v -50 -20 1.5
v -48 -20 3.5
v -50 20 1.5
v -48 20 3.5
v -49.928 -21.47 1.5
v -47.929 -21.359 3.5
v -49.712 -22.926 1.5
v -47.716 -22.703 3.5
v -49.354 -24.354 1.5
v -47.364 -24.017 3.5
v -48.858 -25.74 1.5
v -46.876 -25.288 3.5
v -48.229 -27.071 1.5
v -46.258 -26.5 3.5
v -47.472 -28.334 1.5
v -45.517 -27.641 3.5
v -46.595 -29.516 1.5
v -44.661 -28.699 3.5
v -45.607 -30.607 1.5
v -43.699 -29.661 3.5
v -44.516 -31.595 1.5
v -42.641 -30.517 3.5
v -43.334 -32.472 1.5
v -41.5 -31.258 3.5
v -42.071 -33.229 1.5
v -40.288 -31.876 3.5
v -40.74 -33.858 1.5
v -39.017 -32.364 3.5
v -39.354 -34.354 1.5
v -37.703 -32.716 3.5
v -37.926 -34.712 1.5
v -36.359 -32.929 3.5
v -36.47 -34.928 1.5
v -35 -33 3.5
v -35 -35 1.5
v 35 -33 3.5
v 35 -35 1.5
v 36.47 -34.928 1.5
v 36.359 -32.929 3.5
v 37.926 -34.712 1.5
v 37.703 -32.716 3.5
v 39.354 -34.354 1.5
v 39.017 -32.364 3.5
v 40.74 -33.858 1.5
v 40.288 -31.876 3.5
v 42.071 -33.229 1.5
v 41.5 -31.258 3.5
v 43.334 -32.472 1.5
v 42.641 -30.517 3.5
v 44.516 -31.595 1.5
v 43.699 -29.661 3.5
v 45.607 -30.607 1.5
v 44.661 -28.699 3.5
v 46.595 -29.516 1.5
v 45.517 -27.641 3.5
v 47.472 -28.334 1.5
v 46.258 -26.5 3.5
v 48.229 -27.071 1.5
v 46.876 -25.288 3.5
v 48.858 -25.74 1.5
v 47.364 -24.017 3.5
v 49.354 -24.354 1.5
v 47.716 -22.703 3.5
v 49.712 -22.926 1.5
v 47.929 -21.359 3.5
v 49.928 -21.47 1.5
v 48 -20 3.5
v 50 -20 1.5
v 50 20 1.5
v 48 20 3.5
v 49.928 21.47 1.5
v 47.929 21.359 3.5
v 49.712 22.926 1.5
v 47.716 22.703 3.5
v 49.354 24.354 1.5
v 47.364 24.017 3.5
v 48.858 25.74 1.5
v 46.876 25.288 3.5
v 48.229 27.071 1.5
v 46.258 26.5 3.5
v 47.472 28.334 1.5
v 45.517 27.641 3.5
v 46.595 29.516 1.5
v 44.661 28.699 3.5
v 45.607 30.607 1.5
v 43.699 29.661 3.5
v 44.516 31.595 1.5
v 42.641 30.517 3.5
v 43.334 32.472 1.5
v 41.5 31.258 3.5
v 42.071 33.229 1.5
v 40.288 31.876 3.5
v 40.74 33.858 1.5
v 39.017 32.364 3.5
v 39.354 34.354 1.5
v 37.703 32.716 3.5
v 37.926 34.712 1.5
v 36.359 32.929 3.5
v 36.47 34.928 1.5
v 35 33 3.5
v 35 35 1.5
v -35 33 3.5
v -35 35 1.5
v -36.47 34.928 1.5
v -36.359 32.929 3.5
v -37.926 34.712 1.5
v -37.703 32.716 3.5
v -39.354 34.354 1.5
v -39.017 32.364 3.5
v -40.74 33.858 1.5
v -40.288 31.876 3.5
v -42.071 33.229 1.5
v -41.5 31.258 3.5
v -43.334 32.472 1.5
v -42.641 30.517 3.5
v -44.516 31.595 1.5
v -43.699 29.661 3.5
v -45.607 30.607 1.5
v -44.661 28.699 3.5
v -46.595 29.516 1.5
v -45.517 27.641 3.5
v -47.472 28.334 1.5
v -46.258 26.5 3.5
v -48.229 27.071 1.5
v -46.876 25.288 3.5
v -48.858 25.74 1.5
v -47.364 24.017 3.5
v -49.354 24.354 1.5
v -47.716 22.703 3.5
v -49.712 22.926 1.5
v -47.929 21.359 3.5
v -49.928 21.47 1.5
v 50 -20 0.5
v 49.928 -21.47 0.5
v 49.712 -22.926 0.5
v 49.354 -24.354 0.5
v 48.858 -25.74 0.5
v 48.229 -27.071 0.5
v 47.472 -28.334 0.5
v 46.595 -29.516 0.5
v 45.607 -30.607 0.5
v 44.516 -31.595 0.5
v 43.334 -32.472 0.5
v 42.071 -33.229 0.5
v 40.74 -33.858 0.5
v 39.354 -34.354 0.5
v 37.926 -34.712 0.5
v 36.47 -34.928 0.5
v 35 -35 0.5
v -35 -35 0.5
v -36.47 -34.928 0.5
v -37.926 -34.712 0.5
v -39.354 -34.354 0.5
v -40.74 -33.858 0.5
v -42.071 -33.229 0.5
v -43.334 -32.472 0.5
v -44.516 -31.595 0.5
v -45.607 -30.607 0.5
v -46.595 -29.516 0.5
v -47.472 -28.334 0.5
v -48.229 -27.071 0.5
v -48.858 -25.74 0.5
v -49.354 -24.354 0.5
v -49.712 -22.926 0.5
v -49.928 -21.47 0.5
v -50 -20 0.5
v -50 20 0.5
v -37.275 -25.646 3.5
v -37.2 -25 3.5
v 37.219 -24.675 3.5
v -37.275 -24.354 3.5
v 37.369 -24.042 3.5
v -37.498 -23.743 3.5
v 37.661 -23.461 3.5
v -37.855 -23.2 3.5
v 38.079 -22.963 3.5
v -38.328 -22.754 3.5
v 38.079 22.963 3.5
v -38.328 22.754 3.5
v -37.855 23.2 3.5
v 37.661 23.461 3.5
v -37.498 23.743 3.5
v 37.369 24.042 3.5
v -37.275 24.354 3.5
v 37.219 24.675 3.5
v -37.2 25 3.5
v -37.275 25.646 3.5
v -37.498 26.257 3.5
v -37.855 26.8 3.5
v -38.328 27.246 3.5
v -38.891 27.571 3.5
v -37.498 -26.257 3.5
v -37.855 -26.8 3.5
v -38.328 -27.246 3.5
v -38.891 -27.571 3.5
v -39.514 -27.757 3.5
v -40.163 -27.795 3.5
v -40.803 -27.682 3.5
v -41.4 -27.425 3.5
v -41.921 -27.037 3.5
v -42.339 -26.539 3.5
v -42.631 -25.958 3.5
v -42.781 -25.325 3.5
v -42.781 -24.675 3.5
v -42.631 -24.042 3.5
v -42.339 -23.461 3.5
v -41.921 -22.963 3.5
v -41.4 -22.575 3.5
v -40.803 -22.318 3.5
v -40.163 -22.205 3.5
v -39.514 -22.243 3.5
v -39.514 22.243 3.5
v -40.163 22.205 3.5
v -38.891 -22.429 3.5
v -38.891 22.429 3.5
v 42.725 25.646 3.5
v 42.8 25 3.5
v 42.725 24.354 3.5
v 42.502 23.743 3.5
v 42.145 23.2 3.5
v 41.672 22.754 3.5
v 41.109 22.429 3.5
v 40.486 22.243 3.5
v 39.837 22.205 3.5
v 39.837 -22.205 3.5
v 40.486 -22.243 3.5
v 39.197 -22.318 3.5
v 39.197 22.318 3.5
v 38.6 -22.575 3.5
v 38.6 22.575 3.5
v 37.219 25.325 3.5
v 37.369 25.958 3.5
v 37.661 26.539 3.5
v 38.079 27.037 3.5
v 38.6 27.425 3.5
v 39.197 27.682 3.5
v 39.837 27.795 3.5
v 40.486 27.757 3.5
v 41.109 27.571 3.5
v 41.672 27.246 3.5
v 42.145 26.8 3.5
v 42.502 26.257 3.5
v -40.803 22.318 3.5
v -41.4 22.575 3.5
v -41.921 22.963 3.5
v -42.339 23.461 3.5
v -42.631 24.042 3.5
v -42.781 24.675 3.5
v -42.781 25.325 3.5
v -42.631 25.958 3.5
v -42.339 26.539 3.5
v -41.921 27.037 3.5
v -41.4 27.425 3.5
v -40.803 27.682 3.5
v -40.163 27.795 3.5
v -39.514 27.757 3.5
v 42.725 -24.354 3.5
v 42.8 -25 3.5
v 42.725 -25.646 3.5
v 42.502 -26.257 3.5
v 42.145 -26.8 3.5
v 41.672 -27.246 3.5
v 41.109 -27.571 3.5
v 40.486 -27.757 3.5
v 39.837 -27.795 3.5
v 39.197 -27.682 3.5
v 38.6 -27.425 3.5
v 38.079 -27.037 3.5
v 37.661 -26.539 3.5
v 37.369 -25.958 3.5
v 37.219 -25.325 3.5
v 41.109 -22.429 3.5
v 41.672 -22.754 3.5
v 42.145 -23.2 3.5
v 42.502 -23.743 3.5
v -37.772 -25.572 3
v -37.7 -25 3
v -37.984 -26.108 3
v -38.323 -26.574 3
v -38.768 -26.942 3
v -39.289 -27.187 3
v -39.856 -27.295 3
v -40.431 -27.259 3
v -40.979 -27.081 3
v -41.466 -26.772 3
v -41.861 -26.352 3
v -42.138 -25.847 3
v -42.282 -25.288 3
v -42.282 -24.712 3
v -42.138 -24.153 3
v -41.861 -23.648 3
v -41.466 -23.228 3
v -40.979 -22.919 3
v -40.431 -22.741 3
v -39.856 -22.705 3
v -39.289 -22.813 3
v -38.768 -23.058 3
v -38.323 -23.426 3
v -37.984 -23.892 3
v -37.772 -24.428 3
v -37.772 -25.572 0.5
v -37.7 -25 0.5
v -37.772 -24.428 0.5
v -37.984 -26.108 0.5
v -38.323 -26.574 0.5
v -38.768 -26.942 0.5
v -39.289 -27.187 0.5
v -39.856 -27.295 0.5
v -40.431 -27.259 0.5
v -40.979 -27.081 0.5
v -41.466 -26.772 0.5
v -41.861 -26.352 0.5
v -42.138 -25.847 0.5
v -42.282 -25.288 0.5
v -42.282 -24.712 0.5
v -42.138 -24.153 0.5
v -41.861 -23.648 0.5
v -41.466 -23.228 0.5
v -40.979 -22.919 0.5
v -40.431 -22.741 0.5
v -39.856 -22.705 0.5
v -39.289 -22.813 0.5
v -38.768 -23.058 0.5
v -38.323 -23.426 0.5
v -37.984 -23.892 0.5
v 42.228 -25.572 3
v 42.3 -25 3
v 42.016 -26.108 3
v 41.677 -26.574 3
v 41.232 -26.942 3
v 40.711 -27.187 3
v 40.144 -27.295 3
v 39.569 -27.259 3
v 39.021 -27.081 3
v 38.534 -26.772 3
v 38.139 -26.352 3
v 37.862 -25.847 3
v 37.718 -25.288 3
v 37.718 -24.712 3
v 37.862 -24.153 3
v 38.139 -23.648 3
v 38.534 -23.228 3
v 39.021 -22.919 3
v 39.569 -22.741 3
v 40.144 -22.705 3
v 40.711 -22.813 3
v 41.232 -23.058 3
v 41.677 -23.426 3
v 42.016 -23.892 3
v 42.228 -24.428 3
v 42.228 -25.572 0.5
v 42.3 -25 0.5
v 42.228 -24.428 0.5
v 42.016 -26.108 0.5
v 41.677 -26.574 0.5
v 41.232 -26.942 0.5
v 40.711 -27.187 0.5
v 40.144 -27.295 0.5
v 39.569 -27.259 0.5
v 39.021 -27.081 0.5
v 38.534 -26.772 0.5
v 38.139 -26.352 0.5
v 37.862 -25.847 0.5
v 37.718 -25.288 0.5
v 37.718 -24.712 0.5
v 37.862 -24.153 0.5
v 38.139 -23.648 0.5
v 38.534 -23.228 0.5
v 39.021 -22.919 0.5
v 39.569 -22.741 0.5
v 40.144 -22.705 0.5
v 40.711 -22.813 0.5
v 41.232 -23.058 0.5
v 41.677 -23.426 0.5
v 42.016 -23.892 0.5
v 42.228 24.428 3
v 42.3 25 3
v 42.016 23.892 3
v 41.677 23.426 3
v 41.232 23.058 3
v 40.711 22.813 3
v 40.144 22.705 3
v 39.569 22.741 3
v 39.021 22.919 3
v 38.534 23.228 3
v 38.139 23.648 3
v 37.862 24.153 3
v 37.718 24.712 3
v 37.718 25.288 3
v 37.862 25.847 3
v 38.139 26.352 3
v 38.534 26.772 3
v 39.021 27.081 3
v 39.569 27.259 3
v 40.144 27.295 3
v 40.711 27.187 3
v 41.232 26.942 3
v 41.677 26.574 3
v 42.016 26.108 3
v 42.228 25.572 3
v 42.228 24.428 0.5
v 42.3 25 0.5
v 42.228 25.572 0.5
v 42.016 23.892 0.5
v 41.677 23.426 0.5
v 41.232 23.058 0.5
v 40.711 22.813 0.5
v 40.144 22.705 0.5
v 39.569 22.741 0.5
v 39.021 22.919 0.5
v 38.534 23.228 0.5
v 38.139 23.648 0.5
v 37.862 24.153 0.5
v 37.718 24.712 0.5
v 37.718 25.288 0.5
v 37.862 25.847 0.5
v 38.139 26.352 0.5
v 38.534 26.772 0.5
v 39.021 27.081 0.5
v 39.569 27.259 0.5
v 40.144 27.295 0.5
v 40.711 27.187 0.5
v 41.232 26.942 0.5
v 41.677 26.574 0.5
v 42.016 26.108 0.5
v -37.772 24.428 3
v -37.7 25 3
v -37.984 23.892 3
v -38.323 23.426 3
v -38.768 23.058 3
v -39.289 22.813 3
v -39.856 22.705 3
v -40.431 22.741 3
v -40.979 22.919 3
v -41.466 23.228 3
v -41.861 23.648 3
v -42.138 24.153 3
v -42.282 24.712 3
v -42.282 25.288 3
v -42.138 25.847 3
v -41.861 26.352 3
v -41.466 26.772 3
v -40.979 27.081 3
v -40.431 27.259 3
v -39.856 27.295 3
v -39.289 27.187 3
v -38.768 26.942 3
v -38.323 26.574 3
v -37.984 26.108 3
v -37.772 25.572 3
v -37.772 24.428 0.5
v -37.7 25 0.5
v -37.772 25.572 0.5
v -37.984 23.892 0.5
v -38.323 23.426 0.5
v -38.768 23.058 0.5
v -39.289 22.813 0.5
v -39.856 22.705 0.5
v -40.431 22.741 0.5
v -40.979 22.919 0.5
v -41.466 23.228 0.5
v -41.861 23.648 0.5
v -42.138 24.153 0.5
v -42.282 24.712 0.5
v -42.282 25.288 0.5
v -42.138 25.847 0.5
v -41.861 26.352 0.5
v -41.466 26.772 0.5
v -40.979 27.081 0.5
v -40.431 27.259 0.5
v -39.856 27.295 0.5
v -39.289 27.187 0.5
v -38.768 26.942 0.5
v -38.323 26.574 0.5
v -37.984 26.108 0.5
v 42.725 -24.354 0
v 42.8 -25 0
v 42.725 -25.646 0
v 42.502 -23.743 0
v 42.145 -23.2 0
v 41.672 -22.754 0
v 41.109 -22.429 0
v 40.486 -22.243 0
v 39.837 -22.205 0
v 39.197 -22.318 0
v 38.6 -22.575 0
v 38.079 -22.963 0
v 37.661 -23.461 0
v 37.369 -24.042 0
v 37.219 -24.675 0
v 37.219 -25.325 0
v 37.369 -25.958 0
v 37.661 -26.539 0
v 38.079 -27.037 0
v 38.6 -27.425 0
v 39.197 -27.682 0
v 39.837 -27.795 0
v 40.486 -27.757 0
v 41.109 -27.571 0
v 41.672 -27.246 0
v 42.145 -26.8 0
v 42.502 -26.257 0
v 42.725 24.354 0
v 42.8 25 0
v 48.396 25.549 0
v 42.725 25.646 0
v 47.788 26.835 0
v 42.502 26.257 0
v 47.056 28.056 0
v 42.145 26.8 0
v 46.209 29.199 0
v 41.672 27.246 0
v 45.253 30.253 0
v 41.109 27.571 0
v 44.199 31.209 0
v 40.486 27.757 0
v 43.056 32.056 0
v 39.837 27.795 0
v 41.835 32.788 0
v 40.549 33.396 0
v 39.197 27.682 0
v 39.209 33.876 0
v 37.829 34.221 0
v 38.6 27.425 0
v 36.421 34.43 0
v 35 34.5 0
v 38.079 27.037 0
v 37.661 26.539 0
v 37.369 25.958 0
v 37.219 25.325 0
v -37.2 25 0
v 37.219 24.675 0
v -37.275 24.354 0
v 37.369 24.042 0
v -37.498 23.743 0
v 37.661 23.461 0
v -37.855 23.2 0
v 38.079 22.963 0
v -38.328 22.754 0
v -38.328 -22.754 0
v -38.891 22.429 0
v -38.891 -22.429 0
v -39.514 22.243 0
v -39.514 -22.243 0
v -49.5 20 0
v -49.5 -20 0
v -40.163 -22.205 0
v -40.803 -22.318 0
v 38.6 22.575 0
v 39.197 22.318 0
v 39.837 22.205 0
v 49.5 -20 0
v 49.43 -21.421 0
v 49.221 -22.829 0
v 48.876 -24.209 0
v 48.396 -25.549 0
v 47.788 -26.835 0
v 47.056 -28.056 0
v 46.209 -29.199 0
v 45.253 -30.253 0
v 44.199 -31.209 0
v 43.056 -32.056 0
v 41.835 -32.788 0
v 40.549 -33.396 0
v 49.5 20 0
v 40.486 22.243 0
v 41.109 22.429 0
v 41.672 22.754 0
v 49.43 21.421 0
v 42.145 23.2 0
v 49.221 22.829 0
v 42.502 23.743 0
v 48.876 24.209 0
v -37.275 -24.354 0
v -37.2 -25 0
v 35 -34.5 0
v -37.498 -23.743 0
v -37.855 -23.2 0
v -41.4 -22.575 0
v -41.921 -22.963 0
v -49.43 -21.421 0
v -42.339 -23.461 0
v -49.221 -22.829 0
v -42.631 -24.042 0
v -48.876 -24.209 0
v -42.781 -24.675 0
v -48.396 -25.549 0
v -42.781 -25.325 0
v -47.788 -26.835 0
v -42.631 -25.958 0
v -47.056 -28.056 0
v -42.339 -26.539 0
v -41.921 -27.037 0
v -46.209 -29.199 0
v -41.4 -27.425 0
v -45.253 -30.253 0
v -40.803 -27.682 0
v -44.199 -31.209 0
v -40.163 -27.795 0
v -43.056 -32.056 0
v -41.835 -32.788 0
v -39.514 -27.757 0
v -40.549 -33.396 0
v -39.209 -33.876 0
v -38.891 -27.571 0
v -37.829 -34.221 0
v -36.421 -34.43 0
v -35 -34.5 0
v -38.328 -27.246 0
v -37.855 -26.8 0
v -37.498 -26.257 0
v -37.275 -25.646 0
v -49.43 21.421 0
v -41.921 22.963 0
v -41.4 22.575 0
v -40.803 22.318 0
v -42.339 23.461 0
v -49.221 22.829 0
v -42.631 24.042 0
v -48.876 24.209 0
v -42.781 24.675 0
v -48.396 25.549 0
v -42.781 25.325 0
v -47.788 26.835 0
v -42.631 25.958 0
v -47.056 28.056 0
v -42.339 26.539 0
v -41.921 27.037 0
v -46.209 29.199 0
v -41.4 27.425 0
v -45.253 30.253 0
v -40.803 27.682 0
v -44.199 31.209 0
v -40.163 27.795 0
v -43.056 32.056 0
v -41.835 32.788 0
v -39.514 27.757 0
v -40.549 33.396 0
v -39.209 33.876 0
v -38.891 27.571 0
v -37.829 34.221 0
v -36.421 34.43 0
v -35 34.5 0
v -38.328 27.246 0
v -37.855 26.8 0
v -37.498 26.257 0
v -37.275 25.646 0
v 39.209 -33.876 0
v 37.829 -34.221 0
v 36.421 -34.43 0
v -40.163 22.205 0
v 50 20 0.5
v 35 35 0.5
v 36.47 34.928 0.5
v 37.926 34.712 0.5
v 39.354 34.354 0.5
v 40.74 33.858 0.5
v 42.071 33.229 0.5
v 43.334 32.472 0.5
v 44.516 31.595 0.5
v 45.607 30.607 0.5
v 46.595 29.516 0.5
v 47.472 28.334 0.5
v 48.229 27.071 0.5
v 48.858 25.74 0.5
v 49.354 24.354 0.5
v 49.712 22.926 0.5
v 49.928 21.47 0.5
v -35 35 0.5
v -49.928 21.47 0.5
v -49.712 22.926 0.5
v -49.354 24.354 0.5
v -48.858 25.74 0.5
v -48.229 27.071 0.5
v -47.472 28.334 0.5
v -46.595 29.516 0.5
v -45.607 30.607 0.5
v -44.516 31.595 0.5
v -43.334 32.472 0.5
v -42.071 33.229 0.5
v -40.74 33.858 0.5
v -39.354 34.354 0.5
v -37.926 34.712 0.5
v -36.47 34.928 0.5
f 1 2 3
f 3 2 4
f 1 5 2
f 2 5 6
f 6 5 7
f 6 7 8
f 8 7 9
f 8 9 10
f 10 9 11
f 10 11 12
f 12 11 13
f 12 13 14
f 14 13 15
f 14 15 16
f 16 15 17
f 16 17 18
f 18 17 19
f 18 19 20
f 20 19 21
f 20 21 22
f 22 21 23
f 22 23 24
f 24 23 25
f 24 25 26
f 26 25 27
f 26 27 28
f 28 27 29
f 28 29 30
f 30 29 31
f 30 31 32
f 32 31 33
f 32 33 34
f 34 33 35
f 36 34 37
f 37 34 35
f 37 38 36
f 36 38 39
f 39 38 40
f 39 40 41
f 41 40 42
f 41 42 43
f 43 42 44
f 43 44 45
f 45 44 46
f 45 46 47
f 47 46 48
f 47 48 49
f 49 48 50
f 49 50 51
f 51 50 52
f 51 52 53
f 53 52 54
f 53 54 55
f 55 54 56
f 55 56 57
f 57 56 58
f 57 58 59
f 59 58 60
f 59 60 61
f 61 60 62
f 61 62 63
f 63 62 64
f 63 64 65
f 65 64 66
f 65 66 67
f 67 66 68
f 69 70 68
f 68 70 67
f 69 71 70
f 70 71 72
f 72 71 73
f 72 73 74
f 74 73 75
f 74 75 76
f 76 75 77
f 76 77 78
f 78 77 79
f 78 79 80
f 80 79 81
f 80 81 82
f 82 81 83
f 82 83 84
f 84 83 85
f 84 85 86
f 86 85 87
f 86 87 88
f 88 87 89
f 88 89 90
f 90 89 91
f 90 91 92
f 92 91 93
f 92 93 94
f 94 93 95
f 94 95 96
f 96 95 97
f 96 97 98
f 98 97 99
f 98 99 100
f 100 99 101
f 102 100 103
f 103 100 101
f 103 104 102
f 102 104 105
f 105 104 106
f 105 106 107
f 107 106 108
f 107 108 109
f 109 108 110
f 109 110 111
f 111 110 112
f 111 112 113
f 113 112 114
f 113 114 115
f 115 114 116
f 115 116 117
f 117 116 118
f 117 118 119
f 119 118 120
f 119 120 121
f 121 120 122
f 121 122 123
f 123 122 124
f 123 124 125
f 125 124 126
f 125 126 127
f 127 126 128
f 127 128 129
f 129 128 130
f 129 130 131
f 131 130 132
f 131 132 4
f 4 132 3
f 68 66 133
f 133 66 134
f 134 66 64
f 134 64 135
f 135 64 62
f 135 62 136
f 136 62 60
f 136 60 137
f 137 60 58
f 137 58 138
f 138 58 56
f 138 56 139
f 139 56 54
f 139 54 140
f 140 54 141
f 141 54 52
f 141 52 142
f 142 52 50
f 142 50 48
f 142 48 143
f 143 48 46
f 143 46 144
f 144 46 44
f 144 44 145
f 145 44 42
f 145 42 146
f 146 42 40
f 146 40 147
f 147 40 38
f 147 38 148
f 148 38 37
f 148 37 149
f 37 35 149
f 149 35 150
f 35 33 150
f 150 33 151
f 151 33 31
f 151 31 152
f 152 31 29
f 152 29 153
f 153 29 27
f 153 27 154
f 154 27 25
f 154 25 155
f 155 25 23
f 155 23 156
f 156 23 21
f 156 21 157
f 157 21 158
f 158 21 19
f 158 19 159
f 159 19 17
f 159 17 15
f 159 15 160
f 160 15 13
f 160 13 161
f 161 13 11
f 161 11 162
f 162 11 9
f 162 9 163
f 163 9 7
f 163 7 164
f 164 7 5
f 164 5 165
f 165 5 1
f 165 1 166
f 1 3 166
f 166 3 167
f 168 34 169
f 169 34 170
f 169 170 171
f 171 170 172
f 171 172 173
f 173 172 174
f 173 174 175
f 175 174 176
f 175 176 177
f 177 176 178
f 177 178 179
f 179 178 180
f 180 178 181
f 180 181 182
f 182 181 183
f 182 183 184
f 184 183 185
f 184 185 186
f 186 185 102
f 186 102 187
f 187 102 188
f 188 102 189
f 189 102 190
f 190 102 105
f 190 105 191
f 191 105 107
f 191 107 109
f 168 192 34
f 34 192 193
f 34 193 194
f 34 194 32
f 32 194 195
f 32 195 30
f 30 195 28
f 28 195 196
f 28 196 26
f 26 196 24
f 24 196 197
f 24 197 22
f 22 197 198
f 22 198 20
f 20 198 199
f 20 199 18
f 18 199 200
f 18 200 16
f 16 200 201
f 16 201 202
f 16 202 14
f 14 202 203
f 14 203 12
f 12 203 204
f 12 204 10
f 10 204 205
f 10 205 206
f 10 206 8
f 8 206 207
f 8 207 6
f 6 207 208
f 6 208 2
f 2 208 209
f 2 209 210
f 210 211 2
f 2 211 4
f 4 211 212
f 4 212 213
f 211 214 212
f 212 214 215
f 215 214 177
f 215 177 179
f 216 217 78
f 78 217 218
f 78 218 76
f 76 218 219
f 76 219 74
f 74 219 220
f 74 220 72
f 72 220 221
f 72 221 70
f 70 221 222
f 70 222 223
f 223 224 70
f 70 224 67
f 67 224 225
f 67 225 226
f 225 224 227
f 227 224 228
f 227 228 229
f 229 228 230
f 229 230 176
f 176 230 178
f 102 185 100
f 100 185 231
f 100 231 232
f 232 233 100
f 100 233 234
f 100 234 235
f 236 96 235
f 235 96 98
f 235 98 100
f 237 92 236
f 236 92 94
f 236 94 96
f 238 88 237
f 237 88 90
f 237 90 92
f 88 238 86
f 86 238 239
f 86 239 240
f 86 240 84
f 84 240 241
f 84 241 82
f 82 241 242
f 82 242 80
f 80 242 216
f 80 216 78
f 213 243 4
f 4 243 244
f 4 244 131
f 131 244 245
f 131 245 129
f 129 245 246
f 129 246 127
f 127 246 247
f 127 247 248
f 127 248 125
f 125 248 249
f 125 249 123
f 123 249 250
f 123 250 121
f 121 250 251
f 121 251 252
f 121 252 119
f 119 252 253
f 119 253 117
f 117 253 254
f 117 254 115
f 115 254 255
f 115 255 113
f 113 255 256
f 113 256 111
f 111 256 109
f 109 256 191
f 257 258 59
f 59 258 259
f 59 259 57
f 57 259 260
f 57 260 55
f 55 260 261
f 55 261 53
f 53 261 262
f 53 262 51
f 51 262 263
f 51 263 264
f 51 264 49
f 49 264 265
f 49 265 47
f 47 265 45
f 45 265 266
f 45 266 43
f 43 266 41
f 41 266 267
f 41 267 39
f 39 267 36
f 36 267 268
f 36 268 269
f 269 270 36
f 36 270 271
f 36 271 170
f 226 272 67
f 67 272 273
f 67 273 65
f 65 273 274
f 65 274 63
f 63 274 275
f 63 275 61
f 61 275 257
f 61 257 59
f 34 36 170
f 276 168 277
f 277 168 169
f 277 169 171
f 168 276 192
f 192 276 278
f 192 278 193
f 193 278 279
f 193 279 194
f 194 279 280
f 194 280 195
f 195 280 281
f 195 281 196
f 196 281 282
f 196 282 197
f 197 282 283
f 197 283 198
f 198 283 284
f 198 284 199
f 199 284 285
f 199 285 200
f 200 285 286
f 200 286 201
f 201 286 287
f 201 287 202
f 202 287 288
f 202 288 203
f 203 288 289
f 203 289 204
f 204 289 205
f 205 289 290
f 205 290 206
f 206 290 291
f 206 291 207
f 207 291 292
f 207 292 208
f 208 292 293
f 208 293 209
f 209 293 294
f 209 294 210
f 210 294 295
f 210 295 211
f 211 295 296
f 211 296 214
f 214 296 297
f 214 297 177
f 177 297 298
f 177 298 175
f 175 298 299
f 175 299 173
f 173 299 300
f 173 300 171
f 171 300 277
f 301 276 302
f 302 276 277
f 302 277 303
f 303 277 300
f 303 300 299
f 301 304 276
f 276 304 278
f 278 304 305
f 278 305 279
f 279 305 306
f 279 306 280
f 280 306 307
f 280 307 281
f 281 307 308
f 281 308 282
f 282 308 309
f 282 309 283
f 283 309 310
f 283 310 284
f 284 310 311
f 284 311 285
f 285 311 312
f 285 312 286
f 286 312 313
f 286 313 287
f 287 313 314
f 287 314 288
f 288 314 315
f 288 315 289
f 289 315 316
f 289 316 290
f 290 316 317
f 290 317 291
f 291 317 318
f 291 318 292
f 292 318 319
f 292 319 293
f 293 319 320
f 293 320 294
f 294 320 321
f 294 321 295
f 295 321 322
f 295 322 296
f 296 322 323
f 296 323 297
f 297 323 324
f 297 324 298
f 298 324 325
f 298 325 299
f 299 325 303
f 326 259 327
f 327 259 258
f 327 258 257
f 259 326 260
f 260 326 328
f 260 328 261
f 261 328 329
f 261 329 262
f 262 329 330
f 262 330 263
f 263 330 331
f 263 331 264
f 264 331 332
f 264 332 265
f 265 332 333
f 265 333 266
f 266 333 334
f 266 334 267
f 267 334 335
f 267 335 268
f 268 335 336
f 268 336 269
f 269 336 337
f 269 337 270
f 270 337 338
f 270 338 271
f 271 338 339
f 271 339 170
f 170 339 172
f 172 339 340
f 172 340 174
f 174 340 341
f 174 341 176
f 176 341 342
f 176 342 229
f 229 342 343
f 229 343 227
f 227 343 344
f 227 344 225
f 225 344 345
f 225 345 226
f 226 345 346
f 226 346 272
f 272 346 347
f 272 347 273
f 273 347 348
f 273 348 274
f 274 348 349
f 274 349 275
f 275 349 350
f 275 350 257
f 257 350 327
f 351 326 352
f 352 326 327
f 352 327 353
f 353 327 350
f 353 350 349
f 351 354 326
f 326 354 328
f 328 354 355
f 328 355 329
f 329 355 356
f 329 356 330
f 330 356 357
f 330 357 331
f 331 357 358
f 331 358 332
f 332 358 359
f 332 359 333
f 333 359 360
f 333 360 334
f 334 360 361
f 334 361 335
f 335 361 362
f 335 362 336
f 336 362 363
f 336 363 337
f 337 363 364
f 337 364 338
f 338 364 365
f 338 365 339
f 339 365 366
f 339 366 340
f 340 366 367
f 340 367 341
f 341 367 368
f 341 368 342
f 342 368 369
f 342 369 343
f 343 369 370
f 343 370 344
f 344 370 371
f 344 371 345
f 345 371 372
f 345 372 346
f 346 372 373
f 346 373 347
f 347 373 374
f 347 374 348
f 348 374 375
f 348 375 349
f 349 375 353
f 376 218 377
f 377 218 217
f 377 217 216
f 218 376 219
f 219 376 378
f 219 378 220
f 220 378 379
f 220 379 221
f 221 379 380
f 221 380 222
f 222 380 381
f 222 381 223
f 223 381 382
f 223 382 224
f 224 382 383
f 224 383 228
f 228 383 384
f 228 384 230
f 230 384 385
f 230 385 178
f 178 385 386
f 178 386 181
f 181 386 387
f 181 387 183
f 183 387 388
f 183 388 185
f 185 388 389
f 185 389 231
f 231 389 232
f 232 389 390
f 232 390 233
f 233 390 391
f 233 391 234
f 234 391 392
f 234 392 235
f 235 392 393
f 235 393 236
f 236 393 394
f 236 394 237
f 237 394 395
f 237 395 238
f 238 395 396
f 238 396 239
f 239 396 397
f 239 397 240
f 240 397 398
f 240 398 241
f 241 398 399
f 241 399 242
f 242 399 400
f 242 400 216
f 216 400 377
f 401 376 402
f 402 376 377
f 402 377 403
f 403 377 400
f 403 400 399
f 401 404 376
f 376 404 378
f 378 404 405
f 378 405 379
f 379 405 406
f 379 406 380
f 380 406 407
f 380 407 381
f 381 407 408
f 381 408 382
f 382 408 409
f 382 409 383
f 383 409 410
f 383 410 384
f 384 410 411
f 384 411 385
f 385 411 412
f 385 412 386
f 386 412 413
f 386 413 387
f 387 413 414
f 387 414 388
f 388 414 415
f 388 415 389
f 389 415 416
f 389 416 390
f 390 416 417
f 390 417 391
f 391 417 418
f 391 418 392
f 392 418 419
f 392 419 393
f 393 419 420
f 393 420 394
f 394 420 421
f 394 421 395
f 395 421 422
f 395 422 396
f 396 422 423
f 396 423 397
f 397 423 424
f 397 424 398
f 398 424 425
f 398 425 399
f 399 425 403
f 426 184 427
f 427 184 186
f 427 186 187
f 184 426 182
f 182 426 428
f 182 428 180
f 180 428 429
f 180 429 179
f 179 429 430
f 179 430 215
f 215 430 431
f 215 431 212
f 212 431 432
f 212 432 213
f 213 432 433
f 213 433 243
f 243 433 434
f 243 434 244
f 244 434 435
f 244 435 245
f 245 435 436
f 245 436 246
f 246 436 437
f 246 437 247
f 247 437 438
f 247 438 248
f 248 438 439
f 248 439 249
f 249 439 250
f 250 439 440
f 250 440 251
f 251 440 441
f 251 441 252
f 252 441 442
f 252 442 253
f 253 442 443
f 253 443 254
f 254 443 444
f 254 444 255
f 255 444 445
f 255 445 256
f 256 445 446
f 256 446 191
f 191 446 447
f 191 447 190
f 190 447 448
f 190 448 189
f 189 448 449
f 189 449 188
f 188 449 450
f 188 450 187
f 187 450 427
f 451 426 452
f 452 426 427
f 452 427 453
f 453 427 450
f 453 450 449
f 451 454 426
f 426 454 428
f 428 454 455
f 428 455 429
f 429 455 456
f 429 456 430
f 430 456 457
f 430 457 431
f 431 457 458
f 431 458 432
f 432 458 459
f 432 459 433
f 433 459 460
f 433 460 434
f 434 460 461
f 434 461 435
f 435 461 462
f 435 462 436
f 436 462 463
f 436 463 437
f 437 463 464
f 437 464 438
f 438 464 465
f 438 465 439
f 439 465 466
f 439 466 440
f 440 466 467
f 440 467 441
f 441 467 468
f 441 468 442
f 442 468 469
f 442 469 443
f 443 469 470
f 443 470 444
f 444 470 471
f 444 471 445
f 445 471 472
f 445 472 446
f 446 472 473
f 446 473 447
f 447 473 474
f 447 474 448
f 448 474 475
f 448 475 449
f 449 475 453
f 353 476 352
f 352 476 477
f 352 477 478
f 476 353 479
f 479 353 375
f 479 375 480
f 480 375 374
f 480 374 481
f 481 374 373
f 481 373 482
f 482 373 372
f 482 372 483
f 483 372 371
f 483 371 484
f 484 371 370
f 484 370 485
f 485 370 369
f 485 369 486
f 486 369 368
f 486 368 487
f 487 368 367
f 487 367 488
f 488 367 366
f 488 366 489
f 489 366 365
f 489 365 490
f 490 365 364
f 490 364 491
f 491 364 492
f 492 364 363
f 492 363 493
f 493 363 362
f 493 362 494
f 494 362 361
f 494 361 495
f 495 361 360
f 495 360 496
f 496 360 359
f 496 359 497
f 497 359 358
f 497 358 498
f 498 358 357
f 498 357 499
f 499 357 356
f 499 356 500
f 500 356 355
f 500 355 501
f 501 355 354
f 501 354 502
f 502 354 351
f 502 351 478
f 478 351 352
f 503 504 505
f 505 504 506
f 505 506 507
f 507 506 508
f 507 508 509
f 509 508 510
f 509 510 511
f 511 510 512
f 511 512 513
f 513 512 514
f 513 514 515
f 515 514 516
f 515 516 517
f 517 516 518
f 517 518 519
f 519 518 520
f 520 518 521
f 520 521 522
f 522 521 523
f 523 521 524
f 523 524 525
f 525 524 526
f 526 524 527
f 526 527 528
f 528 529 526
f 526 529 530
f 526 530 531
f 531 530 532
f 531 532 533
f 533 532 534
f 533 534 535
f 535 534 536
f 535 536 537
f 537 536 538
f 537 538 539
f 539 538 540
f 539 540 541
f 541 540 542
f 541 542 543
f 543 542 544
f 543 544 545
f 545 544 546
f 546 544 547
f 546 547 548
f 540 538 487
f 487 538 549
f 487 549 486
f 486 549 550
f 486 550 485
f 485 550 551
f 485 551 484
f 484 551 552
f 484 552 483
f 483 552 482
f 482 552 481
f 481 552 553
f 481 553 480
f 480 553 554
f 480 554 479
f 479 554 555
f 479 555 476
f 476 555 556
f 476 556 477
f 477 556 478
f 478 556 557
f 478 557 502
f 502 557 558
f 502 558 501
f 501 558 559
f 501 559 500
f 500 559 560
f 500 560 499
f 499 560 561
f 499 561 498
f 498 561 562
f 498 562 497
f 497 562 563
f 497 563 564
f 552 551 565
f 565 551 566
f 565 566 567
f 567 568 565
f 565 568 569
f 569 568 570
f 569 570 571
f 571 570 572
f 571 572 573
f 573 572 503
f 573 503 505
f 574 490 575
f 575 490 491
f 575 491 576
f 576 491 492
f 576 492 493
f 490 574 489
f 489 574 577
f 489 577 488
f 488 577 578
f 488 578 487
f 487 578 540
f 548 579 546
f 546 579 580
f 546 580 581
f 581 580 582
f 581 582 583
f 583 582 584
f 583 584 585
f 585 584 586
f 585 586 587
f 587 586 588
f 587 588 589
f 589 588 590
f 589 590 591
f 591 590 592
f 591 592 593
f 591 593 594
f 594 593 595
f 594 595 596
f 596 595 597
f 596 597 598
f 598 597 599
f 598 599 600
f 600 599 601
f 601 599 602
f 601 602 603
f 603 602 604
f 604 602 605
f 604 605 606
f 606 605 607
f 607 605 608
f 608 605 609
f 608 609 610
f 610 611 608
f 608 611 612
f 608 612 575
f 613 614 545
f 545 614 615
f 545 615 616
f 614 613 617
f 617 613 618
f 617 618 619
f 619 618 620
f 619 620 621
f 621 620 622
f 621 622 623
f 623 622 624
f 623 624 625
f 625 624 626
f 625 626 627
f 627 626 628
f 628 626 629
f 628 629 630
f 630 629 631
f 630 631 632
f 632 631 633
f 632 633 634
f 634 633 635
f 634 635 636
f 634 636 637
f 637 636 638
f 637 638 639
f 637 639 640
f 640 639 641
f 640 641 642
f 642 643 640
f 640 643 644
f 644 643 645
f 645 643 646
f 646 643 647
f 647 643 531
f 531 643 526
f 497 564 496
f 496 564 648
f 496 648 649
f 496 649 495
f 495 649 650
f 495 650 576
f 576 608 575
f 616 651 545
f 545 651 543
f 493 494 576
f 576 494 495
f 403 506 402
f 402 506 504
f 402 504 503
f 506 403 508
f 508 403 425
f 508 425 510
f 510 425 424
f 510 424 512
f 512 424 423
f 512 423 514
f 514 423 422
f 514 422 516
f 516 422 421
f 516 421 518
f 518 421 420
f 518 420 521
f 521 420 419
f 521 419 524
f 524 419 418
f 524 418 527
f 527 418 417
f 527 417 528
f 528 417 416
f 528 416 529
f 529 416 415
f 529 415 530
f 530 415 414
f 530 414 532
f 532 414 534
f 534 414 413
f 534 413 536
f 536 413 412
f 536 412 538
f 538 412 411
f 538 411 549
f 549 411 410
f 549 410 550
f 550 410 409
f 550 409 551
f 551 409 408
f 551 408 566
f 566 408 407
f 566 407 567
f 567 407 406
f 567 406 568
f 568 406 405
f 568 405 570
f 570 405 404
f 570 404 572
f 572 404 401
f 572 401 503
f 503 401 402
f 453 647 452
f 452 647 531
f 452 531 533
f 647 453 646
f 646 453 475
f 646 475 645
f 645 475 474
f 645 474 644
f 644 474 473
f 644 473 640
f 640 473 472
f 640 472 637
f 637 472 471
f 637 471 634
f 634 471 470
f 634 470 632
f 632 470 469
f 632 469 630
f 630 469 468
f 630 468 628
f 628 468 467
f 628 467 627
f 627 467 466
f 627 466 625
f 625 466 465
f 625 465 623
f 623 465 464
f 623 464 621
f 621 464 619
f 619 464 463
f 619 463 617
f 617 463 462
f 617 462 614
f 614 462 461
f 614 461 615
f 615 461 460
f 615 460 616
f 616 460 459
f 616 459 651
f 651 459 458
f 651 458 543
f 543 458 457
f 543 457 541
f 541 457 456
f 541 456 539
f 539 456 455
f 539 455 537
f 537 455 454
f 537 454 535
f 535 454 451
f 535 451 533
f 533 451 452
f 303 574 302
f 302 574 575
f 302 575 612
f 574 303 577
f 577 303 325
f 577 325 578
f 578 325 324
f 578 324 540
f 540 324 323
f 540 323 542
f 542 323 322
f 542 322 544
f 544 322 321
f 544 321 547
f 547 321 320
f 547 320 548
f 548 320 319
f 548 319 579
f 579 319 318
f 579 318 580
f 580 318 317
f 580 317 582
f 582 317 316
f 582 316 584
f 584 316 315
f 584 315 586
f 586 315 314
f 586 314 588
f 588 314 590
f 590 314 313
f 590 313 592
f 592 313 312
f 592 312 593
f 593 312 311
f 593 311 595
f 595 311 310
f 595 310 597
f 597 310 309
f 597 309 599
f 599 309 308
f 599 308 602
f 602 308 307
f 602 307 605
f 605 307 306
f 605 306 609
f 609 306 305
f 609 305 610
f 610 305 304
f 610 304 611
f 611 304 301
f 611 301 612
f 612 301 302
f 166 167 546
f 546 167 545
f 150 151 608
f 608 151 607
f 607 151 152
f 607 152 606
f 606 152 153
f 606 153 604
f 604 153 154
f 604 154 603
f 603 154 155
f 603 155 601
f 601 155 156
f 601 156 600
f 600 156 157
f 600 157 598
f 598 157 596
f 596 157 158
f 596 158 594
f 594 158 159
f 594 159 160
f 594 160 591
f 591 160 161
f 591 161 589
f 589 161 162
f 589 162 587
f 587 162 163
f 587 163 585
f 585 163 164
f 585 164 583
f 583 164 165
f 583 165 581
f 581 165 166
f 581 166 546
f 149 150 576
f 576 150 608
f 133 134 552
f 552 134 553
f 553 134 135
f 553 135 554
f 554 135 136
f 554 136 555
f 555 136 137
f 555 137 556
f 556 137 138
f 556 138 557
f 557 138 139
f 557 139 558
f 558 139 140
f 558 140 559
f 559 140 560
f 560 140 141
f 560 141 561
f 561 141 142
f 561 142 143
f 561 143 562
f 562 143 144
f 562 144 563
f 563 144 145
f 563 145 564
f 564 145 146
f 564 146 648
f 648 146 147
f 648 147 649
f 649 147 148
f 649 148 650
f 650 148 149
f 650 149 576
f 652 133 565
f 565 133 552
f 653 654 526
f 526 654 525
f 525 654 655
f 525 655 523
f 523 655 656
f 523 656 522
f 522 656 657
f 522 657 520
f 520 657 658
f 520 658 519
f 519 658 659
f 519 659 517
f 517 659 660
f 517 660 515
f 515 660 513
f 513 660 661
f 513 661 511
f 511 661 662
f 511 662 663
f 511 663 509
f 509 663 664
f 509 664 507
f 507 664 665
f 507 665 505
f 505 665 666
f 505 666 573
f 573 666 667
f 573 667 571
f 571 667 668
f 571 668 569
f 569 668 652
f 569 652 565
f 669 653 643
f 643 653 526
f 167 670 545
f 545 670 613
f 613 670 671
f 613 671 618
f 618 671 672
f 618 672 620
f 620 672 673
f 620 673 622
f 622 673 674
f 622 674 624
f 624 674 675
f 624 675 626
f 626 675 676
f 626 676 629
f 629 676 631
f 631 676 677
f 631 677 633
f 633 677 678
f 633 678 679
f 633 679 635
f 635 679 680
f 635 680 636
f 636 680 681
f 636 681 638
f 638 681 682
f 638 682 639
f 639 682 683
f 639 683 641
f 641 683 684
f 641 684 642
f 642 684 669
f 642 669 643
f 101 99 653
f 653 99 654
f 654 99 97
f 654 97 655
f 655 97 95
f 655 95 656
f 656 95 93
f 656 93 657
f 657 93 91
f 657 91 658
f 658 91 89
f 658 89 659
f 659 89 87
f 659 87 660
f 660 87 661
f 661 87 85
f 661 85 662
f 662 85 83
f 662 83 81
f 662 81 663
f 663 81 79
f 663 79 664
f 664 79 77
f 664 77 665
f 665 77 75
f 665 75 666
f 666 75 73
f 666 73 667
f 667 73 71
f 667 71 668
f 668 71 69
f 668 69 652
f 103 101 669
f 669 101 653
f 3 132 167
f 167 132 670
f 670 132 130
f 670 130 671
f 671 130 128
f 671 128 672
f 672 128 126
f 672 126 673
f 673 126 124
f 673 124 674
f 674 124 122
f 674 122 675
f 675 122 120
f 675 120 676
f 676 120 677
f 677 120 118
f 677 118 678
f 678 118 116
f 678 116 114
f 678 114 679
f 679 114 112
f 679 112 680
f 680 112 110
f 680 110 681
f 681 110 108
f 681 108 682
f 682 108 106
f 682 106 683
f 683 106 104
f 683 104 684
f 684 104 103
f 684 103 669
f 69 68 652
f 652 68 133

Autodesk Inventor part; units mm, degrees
ref_plane "YZ Plane" through (0, 0, 0) normal (1, 0, 0) x (0, 1, 0)
ref_plane "XZ Plane" through (0, 0, 0) normal (0, 1, 0) x (-1, 0, 0)
ref_plane "XY Plane" through (0, 0, 0) normal (0, 0, 1) x (1, 0, 0)
sketch "Sketch1" plane through (0, 0, 0) normal (0, 0, 1) x (1, 0, 0)
  line L0 (-50, -35) -> (50, -35)
  line L1 (50, -35) -> (50, 35)
  line L2 (50, 35) -> (-50, 35)
  line L3 (-50, 35) -> (-50, -35)
  line L4 (-50, -35) -> (50, 35) construction
  line L5 (50, -35) -> (-50, 35) construction
  point P0 (0, 0)
  dimension "d0" = 100
  dimension "d1" = 70
extrude "Extrusion1" add sketch "Sketch1" along normal blind 3.5
sketch "Sketch2" plane through (0, 0, 3.5) normal (0, 0, 1) x (1, 0, 0)
  circle A0 centre (-40, 25) radius 2.3
  line L0 (-70, 0) -> (70, 0) projected
  line L1 (0, -49) -> (0, 49) projected
  circle A1 centre (40, 25) radius 2.3
  circle A2 centre (-40, -25) radius 2.3
  circle A3 centre (40, -25) radius 2.3
  point P0 (0, 0)
  dimension "d4" = 40
  dimension "d5" = 25
  dimension "d6" = 4.6
extrude "Extrusion2" cut sketch "Sketch2" against normal up to surface (3.5 mm away)
fillet "Fillet1" radius 15 4 edges at (-50, 35, 1.75) (-50, -35, 1.75) (50, -35, 1.75) (50, 35, 1.75)
chamfer "Chamfer2" distance 0.5 angle 45 12 edges at (-50, 0, 0) (-45.6066, -30.6066, 0) (0, -35, 0) (45.6066, -30.6066, 0) (50, 0, 0) (45.6066, 30.6066, 0) (0, 35, 0) (-45.6066, 30.6066, 0) (-42.3, -25, 0) (-42.3, 25, 0) (37.7, 25, 0) (37.7, -25, 0)
chamfer "Chamfer3" distance 0.5 angle 45 4 edges at (-42.3, 25, 3.5) (37.7, 25, 3.5) (37.7, -25, 3.5) (-42.3, -25, 3.5)
chamfer "Chamfer4" distance 2 angle 45 8 edges at (-50, 0, 3.5) (-45.6066, -30.6066, 3.5) (0, -35, 3.5) (45.6066, -30.6066, 3.5) (50, 0, 3.5) (45.6066, 30.6066, 3.5) (0, 35, 3.5) (-45.6066, 30.6066, 3.5)
properties part number "_3DPrint"
